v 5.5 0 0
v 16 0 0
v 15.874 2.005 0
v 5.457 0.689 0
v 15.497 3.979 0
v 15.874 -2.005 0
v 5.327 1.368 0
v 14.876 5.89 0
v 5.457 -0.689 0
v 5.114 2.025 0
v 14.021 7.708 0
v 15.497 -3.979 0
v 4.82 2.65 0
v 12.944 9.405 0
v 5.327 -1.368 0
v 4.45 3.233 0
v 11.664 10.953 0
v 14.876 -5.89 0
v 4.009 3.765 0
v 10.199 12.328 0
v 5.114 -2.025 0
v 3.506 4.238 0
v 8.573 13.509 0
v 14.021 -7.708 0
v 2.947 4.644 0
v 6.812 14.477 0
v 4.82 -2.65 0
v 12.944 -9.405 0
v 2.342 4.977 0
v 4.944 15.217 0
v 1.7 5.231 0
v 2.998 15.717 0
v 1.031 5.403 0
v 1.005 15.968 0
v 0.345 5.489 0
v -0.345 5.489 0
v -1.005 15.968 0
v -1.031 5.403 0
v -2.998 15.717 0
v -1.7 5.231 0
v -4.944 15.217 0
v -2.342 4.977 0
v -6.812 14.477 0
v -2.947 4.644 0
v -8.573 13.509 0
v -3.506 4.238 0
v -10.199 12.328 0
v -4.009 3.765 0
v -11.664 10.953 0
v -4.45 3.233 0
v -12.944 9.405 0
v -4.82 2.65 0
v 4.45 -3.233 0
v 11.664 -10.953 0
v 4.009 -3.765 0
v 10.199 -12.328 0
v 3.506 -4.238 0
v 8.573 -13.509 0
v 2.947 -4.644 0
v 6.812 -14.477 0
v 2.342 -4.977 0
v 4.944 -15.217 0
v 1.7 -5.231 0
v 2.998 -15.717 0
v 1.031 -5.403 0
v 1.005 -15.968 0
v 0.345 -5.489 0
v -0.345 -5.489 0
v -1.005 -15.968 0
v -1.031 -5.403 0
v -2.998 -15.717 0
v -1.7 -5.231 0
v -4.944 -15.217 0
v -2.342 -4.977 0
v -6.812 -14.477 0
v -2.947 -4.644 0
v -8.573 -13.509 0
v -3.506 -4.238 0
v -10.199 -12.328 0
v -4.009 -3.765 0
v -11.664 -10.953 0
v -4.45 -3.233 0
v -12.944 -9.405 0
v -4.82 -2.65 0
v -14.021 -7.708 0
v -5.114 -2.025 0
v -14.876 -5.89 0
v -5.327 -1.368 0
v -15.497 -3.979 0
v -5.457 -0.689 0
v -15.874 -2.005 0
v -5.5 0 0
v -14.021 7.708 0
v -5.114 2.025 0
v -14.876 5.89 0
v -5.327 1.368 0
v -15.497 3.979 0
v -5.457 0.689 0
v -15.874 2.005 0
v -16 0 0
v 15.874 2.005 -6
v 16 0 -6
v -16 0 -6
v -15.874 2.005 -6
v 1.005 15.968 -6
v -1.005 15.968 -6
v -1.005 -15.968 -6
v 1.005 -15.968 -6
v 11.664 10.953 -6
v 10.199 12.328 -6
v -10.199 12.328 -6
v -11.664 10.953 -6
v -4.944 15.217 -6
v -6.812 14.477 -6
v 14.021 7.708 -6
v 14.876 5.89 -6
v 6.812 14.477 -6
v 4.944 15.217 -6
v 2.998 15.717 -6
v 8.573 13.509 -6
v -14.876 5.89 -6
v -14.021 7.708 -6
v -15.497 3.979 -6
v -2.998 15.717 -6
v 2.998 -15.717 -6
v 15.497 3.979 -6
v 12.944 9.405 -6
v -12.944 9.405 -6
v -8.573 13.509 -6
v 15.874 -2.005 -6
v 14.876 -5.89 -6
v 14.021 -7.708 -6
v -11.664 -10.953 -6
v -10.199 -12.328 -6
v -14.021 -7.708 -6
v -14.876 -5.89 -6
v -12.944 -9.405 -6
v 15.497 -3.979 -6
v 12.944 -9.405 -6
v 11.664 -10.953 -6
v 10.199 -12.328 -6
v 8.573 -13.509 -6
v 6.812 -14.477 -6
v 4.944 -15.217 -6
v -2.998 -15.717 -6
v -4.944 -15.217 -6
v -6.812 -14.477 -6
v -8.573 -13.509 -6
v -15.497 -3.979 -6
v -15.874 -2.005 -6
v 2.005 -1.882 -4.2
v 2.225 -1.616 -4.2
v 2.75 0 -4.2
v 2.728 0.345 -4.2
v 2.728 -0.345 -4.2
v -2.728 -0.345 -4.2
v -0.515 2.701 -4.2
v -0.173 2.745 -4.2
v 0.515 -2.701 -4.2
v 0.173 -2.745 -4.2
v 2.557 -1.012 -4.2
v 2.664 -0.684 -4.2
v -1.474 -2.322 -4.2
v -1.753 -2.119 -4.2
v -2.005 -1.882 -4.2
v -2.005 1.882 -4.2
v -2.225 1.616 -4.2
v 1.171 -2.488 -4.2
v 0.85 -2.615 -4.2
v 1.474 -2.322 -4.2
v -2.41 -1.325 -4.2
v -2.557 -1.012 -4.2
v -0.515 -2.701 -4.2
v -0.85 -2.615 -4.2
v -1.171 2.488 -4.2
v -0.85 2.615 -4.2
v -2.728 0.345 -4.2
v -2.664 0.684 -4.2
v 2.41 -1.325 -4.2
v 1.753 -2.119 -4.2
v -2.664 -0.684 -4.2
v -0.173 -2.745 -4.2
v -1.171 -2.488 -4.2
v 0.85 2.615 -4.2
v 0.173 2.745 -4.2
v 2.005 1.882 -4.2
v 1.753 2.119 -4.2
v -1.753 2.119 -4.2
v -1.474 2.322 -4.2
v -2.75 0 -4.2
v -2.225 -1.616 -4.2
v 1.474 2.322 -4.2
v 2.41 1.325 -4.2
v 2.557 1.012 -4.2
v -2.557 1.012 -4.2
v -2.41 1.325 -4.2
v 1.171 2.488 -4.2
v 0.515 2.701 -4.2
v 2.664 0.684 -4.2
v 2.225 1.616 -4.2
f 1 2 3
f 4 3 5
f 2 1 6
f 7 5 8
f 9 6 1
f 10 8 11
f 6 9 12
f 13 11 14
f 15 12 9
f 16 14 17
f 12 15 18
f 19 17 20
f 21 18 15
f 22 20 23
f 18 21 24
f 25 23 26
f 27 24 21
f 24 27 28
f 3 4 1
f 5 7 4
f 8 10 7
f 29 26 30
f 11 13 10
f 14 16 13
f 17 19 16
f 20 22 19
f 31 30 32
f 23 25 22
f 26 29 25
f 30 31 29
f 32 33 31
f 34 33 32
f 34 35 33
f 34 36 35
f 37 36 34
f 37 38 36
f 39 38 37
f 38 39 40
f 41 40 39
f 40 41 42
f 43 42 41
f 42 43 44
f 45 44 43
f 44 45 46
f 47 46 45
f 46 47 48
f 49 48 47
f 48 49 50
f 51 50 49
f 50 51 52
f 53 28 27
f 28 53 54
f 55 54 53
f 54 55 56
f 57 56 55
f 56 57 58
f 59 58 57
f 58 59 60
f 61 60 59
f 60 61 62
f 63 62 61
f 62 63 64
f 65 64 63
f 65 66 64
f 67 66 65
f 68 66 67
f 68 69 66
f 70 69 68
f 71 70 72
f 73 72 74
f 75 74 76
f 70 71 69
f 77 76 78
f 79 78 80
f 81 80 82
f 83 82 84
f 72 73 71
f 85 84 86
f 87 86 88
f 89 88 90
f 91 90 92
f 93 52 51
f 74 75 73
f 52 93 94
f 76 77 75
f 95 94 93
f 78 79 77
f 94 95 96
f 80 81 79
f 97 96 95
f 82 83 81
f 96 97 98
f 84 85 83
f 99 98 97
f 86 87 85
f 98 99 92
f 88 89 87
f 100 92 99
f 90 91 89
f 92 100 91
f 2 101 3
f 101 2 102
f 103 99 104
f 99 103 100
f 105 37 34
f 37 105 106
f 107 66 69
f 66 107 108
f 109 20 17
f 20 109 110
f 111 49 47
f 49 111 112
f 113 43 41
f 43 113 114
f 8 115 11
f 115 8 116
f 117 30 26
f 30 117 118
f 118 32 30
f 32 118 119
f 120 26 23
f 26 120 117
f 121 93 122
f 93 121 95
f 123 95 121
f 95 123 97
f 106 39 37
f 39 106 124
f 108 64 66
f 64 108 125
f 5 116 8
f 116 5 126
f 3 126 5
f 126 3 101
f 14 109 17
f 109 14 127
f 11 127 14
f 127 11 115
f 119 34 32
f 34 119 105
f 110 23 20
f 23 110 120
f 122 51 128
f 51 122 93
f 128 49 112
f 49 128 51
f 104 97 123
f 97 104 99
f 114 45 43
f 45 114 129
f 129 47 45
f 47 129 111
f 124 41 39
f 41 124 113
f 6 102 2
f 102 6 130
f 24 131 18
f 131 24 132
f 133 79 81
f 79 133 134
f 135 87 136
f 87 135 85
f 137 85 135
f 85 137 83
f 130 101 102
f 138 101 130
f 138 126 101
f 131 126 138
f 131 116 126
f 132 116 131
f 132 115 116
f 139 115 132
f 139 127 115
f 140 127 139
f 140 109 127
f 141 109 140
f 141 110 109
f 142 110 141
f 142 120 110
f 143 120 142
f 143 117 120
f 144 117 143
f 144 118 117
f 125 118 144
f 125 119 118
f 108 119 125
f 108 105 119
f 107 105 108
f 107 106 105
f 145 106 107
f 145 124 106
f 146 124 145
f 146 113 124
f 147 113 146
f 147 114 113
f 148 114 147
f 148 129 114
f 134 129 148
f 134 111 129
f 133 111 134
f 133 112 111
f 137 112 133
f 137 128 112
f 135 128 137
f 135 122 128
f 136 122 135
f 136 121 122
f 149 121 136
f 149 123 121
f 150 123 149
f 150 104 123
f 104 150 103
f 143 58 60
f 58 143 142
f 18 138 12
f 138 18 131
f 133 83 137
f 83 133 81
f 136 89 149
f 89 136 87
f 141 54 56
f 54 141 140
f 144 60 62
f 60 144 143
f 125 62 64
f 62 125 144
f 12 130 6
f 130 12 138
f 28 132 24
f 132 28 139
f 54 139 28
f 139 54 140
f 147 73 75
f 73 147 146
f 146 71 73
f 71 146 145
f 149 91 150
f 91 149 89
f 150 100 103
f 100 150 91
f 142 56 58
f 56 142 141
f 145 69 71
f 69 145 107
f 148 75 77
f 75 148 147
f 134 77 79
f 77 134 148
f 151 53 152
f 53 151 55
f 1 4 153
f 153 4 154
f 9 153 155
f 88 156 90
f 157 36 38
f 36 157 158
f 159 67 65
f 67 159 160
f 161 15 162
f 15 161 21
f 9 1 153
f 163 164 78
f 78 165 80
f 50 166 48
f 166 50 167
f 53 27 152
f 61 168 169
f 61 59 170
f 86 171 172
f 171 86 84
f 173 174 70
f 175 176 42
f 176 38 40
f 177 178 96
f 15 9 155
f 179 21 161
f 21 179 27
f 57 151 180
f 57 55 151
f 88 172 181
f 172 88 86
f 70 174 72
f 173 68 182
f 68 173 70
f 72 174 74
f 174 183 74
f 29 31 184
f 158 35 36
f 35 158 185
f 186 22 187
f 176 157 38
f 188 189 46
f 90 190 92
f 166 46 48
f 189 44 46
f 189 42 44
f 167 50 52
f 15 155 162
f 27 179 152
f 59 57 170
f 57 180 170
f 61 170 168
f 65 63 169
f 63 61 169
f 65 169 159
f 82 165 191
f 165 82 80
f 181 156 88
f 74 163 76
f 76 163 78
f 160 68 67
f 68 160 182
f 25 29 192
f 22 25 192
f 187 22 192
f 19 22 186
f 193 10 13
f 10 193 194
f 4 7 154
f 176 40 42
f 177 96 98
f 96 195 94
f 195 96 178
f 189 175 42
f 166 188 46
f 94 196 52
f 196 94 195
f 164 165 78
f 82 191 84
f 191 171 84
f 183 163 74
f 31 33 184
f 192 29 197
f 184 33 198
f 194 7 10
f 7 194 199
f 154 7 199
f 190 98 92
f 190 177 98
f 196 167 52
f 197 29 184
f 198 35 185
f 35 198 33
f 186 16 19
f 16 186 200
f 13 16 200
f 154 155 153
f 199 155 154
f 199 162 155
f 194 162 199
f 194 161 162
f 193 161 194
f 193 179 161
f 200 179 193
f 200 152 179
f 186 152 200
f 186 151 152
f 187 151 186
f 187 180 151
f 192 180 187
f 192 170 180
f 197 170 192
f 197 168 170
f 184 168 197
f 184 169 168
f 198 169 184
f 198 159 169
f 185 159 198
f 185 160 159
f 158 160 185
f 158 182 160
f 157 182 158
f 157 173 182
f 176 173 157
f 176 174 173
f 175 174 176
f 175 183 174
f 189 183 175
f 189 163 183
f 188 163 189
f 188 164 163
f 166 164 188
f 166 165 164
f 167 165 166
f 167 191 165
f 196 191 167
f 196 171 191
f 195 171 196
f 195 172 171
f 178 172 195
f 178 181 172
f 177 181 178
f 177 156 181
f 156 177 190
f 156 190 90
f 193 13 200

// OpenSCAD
$fn = 50;


difference() {
	union() {
		translate(v = [0, 0, -3.0000000000]) {
			cylinder(h = 3, r = 10.0000000000);
		}
		translate(v = [0, 0, -6.0000000000]) {
			cylinder(h = 6, r = 16.0000000000);
		}
	}
	union() {
		translate(v = [0, 0, 0]) {
			rotate(a = [0, 0, 0]) {
				difference() {
					union() {
						#translate(v = [0, 0, -3.0000000000]) {
							cylinder(h = 3, r = 2.2500000000);
						}
						#translate(v = [0, 0, -4.2000000000]) {
							cylinder(h = 4.2000000000, r = 10.0000000000, r1 = 2.7500000000, r2 = 5.5000000000);
						}
						#translate(v = [0, 0, -3.0000000000]) {
							cylinder(h = 3, r = 2.7500000000);
						}
						#translate(v = [0, 0, -3.0000000000]) {
							cylinder(h = 3, r = 2.2500000000);
						}
					}
					union();
				}
			}
		}
	}
}
